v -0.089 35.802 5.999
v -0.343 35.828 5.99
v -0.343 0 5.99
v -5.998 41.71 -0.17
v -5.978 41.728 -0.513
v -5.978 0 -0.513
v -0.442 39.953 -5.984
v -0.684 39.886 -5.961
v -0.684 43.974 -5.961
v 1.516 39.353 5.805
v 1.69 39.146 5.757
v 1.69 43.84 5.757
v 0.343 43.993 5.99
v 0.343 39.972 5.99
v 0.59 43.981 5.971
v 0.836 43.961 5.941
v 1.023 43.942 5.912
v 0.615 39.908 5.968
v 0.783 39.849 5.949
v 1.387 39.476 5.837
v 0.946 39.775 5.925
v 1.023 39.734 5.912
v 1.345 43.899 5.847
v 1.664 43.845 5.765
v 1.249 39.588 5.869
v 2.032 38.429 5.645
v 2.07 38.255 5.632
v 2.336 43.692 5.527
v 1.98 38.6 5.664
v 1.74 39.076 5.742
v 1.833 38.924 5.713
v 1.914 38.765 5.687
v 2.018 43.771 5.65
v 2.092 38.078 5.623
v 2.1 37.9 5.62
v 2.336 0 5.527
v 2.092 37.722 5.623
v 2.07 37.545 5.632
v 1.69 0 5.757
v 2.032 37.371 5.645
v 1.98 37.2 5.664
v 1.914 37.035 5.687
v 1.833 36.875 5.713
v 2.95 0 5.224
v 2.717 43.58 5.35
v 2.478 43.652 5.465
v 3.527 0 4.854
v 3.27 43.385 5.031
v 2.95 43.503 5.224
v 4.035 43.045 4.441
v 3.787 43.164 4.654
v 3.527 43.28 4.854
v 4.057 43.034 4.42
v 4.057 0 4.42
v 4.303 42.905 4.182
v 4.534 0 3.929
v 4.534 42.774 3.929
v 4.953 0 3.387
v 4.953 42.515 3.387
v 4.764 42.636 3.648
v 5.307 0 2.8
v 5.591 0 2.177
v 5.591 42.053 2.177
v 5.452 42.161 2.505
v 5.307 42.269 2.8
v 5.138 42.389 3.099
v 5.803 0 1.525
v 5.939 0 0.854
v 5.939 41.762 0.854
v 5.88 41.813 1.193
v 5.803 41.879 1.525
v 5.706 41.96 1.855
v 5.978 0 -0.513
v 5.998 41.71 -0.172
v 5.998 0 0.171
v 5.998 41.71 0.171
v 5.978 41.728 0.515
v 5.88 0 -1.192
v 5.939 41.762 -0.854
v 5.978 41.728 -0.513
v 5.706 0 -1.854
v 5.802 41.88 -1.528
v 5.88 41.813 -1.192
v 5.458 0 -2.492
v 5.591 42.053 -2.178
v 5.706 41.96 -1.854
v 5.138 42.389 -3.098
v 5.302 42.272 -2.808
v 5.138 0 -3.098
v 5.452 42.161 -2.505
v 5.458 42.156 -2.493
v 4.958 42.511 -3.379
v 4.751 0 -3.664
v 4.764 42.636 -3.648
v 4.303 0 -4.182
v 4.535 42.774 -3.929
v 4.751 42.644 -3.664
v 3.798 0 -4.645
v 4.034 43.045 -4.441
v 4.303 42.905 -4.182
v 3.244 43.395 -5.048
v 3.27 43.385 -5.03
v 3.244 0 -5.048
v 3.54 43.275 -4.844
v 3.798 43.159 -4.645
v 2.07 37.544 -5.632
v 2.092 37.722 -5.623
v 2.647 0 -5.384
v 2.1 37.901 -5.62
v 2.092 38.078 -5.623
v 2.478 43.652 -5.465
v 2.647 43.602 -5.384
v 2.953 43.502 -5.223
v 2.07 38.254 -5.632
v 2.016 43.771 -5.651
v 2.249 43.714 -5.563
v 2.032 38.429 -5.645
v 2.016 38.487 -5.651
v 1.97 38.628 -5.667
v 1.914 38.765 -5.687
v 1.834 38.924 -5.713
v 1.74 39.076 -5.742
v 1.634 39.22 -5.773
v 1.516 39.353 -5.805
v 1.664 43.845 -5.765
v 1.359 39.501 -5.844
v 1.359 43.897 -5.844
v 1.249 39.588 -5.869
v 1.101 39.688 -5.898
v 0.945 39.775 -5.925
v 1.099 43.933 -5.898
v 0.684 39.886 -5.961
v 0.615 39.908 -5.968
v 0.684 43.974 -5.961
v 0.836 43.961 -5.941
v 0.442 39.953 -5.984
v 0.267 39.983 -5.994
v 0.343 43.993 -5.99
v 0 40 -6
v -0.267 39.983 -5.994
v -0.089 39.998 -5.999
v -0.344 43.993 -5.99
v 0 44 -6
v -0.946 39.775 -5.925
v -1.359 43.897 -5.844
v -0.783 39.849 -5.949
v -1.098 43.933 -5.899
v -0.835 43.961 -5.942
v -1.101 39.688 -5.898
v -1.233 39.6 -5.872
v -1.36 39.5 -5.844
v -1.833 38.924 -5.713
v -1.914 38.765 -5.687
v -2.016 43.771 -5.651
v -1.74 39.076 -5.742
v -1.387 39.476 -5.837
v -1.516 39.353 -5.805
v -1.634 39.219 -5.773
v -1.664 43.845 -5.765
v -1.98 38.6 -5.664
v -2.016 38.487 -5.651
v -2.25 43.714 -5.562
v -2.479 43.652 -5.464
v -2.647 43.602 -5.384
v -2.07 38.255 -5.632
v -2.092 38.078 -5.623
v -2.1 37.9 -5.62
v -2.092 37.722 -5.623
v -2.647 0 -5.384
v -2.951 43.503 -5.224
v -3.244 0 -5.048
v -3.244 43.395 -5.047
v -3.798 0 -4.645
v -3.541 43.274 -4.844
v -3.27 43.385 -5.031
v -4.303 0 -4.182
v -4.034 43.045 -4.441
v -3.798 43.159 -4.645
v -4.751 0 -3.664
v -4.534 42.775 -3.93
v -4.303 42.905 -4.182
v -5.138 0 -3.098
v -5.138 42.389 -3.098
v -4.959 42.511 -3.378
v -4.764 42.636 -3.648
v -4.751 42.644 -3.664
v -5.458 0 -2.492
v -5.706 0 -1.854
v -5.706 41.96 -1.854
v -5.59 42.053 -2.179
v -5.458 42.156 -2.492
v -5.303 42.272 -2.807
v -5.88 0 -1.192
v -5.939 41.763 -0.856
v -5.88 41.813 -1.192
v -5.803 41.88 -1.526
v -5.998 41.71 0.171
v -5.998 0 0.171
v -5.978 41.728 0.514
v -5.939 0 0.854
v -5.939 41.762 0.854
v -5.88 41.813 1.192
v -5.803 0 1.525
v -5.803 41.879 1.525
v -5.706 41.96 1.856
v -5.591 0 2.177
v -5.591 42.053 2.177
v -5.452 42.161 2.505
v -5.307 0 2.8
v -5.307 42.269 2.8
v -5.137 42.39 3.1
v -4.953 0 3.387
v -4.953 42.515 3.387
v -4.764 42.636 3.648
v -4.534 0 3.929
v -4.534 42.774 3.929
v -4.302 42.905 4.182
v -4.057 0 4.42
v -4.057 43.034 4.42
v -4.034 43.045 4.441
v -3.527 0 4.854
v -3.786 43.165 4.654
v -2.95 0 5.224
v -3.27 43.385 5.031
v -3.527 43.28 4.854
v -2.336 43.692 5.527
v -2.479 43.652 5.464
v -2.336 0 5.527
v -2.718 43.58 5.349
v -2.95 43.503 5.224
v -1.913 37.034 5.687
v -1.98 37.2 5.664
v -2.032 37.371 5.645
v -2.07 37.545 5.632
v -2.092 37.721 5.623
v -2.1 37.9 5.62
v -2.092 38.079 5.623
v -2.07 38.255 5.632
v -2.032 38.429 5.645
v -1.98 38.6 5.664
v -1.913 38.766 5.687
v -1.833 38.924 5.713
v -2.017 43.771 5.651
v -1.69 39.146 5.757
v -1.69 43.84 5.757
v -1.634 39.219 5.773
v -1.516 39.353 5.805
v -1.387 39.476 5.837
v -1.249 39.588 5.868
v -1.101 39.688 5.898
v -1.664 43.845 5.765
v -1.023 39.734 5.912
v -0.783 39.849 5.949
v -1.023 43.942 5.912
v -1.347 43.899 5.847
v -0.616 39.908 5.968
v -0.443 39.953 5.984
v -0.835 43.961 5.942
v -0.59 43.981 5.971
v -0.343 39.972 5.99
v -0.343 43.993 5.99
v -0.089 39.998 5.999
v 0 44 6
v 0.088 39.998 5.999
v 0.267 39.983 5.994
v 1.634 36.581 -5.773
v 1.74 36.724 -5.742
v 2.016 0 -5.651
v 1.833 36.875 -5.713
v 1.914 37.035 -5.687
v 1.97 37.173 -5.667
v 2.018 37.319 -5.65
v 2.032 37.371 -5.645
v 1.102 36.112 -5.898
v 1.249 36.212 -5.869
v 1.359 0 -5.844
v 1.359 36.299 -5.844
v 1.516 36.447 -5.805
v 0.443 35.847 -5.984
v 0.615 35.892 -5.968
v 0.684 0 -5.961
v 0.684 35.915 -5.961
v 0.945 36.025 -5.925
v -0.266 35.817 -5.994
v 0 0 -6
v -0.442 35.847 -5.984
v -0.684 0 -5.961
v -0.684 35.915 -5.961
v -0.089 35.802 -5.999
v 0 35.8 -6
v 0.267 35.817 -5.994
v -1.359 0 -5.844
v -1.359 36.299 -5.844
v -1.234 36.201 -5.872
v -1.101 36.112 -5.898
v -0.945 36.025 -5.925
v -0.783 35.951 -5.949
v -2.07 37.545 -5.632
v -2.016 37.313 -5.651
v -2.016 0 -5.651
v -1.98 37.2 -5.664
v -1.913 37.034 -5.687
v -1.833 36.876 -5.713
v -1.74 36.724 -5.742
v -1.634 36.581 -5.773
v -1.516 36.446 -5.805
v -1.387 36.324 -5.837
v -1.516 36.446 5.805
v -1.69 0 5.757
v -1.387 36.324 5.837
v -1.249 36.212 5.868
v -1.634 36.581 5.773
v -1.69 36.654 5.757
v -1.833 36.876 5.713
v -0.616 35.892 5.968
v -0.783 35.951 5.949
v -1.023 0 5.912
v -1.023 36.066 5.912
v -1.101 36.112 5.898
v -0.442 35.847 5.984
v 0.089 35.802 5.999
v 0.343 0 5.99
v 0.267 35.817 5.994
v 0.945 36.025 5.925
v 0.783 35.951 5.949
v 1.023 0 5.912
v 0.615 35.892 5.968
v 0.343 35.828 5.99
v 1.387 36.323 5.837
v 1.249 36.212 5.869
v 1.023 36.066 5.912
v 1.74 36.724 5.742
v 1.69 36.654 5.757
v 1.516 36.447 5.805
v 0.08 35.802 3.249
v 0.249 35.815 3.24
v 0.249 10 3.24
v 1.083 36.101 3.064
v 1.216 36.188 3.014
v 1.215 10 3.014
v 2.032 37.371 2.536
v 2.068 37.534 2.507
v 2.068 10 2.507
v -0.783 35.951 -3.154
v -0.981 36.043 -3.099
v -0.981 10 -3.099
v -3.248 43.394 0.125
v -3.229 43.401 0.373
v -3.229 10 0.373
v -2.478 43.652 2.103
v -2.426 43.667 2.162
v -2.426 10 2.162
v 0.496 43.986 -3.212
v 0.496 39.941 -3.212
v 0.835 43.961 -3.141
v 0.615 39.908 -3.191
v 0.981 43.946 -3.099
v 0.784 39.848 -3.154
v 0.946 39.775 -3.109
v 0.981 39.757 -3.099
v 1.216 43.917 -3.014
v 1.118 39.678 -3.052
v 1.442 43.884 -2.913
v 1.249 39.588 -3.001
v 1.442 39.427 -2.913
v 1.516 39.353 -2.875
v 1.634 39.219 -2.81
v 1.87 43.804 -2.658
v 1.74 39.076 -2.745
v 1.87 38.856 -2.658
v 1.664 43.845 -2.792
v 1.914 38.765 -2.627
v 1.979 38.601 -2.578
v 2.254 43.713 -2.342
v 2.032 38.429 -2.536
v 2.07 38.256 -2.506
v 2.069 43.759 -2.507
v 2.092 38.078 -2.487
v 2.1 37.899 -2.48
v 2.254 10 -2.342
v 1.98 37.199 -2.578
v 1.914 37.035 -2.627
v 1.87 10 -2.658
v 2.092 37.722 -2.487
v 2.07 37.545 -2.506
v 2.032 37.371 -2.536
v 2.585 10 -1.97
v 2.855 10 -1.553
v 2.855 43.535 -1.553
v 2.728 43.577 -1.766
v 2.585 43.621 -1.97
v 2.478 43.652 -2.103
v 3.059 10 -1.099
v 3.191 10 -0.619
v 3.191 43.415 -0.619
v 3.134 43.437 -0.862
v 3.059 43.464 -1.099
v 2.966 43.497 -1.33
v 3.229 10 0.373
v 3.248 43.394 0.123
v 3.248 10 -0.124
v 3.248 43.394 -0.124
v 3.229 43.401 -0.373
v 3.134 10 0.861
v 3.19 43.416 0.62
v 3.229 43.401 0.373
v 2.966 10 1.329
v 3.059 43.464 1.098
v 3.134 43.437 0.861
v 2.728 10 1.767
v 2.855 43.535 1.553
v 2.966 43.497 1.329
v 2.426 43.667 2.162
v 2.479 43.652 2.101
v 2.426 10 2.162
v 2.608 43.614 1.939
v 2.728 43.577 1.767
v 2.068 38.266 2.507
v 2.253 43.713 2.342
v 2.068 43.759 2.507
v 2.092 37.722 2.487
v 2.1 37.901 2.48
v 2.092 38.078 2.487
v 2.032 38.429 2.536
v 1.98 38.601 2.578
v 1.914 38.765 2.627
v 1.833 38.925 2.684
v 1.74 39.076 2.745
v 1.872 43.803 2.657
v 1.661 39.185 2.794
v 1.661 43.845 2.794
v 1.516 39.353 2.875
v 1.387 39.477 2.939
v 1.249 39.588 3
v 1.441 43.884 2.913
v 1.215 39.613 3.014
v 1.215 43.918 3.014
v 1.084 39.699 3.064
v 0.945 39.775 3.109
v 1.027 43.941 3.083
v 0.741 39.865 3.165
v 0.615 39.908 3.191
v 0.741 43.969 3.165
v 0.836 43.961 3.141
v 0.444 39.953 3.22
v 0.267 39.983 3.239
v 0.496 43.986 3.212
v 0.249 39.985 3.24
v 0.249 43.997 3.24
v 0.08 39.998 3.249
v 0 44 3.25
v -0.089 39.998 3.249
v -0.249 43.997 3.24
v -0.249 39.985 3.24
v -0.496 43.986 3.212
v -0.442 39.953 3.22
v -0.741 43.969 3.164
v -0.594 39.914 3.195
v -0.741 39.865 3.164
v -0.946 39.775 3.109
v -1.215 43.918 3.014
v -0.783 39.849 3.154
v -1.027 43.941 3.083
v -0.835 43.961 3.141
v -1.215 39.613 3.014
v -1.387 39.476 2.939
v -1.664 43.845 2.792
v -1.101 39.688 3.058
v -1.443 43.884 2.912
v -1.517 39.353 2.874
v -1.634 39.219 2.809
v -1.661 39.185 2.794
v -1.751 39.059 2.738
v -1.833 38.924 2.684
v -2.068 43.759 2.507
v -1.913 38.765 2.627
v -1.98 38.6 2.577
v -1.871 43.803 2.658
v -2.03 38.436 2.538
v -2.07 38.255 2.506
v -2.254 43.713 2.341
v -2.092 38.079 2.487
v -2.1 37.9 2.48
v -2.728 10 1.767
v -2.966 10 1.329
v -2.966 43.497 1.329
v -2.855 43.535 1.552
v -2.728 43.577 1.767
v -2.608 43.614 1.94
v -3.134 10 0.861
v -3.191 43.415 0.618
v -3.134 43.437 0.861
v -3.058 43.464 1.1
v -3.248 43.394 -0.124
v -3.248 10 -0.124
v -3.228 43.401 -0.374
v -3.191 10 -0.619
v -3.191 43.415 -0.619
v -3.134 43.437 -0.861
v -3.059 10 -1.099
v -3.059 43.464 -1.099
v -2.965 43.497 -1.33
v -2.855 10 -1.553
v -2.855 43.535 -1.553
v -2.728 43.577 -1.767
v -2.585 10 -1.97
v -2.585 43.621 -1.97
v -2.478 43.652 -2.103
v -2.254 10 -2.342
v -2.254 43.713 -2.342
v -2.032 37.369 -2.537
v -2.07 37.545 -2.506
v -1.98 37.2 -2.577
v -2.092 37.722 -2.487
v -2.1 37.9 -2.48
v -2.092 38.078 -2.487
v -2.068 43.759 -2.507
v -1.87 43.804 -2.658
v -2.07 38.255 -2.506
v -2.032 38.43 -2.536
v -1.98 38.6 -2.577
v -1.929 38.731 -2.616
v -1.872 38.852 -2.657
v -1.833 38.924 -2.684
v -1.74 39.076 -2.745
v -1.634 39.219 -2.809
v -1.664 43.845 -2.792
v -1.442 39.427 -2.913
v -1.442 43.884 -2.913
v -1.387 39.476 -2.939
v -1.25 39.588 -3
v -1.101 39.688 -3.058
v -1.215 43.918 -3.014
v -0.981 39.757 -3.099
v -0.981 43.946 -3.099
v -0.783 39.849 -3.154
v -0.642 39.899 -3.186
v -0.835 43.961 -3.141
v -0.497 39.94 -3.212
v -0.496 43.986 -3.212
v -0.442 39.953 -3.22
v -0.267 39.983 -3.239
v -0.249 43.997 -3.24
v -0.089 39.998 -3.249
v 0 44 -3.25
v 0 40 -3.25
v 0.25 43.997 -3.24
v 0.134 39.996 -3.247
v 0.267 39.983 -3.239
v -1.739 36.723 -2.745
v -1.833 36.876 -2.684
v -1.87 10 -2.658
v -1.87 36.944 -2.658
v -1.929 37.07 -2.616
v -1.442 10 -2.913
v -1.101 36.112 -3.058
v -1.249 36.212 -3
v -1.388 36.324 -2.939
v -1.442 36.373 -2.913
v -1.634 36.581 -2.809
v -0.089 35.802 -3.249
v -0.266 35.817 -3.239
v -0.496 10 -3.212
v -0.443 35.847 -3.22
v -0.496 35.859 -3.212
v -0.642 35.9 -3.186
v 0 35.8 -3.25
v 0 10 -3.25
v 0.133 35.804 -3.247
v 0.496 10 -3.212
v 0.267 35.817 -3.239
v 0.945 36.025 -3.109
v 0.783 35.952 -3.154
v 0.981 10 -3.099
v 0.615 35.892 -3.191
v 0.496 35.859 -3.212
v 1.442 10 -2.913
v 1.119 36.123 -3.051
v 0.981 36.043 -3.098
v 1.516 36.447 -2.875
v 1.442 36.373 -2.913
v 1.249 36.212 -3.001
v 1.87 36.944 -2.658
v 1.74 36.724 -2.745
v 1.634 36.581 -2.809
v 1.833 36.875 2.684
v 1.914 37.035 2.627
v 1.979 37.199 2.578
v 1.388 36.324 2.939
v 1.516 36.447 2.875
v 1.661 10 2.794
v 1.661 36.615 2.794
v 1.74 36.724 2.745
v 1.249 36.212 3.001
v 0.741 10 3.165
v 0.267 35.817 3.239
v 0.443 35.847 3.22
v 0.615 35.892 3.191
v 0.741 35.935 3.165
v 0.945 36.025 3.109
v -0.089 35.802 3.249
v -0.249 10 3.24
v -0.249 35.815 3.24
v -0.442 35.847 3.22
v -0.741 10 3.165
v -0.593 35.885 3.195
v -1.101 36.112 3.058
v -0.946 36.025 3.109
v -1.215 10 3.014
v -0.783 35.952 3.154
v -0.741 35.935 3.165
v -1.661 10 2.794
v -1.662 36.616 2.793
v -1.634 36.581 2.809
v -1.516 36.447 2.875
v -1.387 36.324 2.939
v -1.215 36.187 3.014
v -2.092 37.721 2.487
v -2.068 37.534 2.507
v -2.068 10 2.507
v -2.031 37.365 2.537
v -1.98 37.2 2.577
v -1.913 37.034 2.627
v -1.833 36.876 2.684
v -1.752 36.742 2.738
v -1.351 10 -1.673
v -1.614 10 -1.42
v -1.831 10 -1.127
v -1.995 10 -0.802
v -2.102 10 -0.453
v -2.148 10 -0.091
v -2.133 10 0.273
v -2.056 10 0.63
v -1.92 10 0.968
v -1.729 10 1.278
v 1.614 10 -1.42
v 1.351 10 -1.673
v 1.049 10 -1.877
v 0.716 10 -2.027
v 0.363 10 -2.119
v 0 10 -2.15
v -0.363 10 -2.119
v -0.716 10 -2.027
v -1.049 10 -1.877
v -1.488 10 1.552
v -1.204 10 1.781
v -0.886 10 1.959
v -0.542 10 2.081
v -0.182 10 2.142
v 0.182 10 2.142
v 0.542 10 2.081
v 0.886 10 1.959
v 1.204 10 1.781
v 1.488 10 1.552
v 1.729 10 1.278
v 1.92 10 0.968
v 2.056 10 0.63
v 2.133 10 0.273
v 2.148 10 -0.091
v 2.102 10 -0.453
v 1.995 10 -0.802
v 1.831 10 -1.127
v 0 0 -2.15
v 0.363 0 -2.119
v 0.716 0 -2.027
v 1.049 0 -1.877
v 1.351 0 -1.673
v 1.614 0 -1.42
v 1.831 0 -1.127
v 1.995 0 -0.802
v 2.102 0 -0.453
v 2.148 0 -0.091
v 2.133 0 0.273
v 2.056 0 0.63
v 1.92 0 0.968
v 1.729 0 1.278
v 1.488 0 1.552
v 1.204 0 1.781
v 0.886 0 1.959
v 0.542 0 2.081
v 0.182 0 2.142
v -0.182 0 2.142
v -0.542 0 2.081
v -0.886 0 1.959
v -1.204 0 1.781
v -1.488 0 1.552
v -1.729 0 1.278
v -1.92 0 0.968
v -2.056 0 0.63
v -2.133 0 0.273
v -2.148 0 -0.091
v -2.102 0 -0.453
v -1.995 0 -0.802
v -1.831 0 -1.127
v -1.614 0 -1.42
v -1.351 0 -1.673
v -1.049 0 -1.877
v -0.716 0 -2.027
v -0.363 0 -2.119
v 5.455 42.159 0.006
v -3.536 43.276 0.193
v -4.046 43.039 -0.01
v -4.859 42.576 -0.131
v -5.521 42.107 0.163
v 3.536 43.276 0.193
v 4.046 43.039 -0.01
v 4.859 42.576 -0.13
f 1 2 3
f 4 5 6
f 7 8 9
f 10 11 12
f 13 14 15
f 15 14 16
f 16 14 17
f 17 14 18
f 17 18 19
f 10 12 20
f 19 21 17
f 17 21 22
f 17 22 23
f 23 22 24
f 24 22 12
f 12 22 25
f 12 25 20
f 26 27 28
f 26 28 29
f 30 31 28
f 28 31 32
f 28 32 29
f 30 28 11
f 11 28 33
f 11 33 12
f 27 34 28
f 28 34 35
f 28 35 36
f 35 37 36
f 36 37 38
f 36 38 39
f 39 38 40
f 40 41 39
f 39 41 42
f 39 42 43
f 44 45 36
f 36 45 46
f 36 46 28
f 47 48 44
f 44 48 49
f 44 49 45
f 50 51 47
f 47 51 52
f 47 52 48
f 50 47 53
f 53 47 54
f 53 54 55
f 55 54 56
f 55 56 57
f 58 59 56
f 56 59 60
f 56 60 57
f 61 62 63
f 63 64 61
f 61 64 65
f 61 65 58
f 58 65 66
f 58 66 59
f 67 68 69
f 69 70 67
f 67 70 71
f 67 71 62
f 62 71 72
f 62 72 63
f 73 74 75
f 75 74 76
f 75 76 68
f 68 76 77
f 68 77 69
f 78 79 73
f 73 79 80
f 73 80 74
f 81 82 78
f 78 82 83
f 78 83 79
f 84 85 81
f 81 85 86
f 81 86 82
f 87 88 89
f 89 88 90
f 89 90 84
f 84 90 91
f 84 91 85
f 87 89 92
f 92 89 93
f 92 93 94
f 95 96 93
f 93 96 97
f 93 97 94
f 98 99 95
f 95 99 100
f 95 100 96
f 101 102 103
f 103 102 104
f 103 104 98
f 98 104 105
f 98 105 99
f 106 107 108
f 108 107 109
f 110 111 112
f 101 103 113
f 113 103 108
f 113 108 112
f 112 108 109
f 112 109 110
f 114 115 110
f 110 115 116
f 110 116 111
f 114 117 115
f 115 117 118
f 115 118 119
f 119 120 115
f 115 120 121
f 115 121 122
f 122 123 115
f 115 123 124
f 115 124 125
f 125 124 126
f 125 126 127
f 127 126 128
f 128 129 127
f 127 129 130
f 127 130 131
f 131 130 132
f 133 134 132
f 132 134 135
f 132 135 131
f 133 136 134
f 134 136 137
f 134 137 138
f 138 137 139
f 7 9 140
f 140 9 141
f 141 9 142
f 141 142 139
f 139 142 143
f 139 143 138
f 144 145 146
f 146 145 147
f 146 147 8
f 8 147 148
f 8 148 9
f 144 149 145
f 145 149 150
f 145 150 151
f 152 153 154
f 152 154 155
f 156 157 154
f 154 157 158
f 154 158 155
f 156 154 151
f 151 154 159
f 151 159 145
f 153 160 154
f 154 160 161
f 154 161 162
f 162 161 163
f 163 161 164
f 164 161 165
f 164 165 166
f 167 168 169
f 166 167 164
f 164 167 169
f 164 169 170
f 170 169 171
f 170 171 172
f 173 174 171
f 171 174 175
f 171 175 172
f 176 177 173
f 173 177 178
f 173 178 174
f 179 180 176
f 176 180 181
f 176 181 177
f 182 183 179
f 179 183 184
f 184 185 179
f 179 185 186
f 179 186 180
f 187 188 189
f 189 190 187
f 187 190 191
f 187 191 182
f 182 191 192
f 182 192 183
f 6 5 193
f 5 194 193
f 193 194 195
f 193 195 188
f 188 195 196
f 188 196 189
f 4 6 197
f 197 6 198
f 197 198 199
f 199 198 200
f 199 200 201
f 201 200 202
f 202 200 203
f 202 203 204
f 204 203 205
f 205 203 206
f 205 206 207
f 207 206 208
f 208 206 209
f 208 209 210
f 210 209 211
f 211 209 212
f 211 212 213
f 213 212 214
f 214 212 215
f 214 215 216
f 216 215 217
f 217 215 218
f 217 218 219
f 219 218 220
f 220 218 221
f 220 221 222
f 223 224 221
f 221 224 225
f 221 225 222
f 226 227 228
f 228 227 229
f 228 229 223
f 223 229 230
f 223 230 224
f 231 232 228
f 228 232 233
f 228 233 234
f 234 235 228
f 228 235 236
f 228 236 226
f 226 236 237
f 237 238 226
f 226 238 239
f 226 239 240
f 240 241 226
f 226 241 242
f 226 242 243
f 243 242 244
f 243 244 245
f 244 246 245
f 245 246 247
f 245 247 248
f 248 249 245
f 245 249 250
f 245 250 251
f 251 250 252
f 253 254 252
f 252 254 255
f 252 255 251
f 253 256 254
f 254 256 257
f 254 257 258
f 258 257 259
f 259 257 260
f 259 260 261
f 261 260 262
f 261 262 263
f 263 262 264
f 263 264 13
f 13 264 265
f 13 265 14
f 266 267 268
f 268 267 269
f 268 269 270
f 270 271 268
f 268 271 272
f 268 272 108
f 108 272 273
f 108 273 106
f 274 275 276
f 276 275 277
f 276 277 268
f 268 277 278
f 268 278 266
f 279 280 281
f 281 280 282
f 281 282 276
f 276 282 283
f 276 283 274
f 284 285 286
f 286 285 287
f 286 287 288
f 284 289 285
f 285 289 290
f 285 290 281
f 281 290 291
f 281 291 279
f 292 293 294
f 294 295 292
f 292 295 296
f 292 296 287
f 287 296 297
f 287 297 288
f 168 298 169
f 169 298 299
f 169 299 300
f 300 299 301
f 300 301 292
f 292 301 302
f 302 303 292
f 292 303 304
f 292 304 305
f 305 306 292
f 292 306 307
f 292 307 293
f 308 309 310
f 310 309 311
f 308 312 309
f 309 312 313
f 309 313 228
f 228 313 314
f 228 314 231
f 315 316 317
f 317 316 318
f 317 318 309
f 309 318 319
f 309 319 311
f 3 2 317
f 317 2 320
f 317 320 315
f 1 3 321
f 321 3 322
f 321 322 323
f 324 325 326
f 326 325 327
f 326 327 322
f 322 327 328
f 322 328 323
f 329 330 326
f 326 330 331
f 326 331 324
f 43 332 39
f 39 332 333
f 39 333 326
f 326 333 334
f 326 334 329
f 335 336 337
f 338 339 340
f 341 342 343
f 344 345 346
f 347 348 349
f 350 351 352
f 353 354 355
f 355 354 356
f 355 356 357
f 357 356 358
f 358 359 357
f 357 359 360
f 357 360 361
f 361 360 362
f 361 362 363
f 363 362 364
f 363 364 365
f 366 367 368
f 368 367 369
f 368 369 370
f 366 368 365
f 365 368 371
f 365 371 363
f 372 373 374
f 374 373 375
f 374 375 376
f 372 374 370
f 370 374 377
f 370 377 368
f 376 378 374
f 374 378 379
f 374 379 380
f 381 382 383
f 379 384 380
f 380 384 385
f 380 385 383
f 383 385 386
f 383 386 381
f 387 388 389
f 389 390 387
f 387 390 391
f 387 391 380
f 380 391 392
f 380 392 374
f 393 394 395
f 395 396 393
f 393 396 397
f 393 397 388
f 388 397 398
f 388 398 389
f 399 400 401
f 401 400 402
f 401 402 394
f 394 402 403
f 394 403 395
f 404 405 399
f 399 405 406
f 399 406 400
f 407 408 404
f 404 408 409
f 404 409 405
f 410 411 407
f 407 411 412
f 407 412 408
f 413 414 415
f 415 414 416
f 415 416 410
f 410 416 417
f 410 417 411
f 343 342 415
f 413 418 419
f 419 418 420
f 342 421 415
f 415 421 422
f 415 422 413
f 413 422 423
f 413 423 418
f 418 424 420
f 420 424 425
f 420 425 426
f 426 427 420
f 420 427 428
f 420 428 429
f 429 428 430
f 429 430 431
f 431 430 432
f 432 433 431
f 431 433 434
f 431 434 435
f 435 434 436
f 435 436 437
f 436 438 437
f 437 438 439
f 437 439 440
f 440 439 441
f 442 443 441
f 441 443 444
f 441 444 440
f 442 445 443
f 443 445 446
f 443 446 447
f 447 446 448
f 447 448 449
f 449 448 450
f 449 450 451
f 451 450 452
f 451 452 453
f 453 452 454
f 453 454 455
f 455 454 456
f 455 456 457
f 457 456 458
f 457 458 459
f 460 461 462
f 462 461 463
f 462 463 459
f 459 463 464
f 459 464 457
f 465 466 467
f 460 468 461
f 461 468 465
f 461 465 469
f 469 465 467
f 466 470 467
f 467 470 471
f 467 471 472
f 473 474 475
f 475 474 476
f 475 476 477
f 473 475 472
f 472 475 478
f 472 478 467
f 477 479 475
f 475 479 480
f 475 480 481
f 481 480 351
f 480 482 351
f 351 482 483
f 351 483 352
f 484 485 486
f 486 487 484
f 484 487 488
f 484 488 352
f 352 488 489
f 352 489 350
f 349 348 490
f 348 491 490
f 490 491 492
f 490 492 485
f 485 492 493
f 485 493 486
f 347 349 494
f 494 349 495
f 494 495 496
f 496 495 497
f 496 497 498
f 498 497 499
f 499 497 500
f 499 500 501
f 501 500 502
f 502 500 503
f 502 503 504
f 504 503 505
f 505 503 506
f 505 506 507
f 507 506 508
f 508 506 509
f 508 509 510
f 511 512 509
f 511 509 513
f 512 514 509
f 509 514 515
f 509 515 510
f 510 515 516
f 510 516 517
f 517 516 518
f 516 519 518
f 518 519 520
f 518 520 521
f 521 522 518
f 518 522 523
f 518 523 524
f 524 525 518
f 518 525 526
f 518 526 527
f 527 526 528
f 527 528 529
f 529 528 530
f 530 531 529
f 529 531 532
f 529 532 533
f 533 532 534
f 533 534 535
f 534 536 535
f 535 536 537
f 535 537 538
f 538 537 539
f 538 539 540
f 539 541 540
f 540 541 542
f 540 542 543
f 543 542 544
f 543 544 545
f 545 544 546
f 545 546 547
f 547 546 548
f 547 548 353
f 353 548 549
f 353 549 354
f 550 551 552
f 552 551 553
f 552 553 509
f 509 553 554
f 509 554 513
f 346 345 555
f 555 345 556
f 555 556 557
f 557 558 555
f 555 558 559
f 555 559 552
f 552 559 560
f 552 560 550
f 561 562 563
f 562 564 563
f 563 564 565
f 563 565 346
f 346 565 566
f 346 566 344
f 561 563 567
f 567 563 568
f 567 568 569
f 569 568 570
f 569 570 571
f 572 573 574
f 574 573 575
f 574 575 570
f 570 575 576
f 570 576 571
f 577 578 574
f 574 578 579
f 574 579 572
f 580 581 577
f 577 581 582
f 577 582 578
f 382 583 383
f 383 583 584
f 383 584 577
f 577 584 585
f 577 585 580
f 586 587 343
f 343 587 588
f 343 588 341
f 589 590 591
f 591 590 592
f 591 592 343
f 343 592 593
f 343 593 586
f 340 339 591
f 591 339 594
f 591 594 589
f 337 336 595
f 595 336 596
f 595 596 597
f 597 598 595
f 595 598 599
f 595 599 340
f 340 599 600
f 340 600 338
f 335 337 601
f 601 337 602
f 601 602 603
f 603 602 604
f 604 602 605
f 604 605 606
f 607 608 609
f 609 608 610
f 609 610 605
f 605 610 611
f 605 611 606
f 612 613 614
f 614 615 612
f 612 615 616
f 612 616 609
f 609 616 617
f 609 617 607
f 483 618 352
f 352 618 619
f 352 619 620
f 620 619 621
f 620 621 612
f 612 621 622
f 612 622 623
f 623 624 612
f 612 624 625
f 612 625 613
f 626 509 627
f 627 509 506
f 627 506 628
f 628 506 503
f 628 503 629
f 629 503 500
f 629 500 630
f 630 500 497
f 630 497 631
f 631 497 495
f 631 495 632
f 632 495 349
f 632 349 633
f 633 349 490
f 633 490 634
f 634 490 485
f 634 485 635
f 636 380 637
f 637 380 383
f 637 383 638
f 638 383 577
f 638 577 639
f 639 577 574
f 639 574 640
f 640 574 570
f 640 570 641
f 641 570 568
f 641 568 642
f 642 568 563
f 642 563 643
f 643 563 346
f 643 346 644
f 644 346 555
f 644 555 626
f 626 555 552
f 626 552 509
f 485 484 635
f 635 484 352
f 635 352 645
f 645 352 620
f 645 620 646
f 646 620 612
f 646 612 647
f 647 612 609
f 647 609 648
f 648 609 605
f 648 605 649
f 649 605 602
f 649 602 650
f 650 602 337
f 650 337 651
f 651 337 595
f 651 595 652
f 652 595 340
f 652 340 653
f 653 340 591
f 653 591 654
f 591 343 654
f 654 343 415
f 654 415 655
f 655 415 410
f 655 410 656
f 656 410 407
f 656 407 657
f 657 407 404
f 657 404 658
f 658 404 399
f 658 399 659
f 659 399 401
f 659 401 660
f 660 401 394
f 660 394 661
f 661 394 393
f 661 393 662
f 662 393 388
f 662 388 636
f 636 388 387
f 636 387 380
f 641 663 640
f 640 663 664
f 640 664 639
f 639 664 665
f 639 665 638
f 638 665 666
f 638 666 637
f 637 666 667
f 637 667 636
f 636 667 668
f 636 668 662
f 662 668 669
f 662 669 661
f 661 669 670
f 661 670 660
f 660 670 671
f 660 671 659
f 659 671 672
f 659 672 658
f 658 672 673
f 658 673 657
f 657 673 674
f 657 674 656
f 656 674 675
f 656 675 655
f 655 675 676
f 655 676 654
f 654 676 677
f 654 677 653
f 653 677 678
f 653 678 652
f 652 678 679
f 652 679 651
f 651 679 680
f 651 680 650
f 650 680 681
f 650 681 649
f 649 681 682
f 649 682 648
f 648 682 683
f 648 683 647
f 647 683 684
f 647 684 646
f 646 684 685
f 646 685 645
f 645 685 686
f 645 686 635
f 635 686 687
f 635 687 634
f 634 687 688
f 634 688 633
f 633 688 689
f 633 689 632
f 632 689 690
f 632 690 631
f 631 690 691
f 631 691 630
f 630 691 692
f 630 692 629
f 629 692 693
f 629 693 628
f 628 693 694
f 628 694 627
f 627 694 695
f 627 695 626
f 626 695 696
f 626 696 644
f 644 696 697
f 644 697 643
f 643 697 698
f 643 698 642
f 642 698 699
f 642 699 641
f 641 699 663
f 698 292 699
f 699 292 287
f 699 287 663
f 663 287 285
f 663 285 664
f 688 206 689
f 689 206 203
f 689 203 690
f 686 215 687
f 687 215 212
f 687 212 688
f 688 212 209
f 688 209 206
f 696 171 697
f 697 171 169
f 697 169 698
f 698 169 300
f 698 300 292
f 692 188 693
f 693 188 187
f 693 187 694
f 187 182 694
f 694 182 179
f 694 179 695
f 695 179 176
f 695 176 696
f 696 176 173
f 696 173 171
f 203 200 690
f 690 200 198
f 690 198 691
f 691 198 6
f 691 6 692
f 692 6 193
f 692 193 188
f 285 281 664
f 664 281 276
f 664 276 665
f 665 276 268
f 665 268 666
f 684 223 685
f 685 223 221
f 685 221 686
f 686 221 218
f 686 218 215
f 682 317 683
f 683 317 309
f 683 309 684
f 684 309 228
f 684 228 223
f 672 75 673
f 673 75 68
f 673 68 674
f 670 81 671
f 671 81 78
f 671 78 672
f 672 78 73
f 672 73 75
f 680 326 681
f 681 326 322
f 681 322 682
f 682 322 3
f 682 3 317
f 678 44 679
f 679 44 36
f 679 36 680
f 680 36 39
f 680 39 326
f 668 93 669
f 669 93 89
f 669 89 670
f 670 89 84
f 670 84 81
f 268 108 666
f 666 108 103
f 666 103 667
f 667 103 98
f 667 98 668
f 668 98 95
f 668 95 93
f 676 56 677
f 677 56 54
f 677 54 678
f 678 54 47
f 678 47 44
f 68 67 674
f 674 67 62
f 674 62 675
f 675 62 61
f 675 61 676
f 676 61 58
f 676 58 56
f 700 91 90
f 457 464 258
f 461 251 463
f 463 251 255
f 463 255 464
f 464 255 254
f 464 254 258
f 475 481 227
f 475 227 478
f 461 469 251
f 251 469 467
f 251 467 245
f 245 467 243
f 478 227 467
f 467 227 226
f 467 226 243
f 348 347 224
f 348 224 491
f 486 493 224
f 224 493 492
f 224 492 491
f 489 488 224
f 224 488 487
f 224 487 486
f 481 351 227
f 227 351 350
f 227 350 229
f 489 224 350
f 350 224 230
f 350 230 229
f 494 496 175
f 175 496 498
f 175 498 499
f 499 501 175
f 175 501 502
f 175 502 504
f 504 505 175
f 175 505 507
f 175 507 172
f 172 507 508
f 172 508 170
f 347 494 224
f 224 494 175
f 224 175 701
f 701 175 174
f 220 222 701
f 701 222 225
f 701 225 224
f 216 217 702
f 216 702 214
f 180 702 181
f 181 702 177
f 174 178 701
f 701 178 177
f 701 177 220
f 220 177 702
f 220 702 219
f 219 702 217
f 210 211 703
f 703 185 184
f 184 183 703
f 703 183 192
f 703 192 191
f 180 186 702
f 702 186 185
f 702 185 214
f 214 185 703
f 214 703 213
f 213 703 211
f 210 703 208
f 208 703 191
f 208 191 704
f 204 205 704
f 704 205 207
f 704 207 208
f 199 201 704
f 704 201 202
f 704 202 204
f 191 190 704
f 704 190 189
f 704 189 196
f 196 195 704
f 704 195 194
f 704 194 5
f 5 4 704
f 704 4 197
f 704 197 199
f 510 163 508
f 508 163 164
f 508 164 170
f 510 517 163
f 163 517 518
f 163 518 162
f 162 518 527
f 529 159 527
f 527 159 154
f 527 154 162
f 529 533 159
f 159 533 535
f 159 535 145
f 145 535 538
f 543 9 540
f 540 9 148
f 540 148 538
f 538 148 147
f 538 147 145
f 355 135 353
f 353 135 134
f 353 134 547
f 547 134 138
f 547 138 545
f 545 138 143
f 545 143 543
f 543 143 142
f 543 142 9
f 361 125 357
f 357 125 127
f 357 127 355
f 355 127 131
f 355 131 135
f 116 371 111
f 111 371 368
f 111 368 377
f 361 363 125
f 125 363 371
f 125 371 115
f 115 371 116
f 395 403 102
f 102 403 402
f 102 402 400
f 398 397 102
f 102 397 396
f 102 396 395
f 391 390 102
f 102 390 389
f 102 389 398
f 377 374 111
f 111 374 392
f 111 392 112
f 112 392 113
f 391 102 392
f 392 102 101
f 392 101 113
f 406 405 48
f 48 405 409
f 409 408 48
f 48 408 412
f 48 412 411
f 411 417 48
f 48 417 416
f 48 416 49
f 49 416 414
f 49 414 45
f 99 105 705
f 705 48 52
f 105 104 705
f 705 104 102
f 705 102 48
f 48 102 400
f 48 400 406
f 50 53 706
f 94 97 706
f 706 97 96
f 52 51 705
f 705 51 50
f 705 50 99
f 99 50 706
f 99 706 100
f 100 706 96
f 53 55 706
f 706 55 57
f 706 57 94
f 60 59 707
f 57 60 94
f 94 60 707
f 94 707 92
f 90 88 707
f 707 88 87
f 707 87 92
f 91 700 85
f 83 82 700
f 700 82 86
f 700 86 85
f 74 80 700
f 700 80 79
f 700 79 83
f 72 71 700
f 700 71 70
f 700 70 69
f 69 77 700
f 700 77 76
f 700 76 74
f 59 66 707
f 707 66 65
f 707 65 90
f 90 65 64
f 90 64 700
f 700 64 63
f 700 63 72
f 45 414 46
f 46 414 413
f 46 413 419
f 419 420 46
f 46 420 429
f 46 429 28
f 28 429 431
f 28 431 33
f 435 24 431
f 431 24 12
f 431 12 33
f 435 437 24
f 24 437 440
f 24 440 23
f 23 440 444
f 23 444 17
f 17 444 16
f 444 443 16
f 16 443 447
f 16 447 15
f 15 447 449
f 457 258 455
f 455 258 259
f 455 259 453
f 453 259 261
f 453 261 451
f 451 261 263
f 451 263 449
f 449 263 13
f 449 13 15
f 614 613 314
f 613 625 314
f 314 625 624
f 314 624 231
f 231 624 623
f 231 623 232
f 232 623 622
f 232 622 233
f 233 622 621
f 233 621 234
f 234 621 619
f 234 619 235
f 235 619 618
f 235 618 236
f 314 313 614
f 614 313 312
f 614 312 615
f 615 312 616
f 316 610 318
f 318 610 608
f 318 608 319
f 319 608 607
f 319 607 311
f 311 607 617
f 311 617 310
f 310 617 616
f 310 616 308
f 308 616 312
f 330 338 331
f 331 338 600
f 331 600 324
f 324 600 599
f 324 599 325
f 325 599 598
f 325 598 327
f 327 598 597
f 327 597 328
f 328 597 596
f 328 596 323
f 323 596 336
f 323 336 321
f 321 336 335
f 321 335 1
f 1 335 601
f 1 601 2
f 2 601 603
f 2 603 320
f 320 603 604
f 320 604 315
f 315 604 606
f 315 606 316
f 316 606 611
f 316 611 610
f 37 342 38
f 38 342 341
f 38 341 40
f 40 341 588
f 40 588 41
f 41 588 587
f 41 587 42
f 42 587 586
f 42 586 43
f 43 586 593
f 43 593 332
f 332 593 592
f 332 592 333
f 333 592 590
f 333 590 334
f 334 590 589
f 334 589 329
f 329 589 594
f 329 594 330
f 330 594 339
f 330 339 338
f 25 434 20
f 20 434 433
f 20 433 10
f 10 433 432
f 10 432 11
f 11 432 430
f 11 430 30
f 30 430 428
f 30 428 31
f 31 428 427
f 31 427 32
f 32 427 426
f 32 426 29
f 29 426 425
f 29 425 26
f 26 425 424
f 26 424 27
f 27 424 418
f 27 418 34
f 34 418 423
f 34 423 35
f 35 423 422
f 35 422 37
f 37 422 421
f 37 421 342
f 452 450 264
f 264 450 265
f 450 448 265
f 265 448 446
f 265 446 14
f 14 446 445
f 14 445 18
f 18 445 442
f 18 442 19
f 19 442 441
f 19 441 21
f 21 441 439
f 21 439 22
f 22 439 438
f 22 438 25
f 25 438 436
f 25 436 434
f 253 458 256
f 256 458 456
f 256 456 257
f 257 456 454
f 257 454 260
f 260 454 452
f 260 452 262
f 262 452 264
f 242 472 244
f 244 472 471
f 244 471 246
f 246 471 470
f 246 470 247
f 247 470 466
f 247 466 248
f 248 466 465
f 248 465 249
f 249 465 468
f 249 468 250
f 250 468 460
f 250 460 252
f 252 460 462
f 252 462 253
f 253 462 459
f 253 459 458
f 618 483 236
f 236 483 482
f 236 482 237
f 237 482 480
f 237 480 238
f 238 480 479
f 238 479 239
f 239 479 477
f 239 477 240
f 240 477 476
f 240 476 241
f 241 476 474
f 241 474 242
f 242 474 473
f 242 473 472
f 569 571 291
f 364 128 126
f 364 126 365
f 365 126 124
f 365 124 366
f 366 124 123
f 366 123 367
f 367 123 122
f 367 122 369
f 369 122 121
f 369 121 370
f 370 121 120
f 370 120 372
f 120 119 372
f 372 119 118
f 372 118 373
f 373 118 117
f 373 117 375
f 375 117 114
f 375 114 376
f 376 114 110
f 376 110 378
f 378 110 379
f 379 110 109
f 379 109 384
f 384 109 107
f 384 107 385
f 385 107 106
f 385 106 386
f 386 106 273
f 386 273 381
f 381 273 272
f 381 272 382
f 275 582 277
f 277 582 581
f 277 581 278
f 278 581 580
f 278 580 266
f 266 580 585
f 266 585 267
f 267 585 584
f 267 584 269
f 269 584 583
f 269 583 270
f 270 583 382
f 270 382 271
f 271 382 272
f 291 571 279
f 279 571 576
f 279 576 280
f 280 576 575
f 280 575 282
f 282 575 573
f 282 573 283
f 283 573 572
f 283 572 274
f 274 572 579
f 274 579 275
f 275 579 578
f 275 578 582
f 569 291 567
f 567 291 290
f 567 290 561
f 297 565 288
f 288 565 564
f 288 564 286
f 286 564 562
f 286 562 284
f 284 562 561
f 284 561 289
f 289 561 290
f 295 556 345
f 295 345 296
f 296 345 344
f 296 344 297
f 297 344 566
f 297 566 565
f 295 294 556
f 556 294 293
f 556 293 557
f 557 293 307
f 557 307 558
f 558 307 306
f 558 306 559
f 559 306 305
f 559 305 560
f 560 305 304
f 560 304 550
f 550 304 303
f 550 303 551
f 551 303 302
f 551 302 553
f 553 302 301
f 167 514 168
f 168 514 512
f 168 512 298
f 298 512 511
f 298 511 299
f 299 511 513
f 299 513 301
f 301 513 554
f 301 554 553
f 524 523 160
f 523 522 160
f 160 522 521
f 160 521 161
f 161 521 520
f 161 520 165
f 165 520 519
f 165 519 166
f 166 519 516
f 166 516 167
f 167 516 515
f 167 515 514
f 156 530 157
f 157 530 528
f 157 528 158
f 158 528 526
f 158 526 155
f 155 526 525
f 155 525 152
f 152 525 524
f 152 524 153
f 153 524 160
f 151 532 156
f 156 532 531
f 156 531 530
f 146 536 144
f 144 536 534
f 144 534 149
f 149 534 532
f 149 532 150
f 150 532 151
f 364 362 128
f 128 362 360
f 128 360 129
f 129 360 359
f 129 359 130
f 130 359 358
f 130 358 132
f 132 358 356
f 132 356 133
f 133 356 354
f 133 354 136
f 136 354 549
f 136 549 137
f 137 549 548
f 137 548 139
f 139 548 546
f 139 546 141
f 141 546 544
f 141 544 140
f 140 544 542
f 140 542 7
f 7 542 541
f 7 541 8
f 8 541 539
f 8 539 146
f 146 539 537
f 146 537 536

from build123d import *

# Parameters (mm, degrees)
CUT_EXTRUDE1_DEPTH      = 10
CUT_EXTRUDE1_DEPTH_BACK = 10
SKETCH2_R               = 2.1


with BuildPart() as part:
    # Sketch1 → Revolve1 (revolve)
    with BuildSketch(Plane.XY):
        Polygon((2.15, 0), (6, 0), (6, 44), (3.25, 44), (3.25, 10), (2.15, 10), align=None)
    revolve(axis=Axis((0, 0, 0), (0, 1, 0)))

    # Sketch2 → Cut-Extrude1 (cut, two sides: drawn at the far end of the back side and taken through both)
    with BuildSketch(Plane.XY.offset(-CUT_EXTRUDE1_DEPTH_BACK)):
        with BuildLine():
            Line((6, 44), (0, 44))
            ThreePointArc((0, 44), (3.211398808, 43.407551231), (6, 41.708203932))
            Line((6, 41.708203932), (6, 44))
        make_face()
        with BuildLine():
            Line((-6, 44), (-6, 41.708203932))
            ThreePointArc((-6, 41.708203932), (-3.211398808, 43.407551231), (0, 44))
            Line((0, 44), (-6, 44))
        make_face()
        with Locations((0, 37.9)):
            Circle(SKETCH2_R)
    extrude(amount=CUT_EXTRUDE1_DEPTH + CUT_EXTRUDE1_DEPTH_BACK, mode=Mode.SUBTRACT)


solid = part.part
